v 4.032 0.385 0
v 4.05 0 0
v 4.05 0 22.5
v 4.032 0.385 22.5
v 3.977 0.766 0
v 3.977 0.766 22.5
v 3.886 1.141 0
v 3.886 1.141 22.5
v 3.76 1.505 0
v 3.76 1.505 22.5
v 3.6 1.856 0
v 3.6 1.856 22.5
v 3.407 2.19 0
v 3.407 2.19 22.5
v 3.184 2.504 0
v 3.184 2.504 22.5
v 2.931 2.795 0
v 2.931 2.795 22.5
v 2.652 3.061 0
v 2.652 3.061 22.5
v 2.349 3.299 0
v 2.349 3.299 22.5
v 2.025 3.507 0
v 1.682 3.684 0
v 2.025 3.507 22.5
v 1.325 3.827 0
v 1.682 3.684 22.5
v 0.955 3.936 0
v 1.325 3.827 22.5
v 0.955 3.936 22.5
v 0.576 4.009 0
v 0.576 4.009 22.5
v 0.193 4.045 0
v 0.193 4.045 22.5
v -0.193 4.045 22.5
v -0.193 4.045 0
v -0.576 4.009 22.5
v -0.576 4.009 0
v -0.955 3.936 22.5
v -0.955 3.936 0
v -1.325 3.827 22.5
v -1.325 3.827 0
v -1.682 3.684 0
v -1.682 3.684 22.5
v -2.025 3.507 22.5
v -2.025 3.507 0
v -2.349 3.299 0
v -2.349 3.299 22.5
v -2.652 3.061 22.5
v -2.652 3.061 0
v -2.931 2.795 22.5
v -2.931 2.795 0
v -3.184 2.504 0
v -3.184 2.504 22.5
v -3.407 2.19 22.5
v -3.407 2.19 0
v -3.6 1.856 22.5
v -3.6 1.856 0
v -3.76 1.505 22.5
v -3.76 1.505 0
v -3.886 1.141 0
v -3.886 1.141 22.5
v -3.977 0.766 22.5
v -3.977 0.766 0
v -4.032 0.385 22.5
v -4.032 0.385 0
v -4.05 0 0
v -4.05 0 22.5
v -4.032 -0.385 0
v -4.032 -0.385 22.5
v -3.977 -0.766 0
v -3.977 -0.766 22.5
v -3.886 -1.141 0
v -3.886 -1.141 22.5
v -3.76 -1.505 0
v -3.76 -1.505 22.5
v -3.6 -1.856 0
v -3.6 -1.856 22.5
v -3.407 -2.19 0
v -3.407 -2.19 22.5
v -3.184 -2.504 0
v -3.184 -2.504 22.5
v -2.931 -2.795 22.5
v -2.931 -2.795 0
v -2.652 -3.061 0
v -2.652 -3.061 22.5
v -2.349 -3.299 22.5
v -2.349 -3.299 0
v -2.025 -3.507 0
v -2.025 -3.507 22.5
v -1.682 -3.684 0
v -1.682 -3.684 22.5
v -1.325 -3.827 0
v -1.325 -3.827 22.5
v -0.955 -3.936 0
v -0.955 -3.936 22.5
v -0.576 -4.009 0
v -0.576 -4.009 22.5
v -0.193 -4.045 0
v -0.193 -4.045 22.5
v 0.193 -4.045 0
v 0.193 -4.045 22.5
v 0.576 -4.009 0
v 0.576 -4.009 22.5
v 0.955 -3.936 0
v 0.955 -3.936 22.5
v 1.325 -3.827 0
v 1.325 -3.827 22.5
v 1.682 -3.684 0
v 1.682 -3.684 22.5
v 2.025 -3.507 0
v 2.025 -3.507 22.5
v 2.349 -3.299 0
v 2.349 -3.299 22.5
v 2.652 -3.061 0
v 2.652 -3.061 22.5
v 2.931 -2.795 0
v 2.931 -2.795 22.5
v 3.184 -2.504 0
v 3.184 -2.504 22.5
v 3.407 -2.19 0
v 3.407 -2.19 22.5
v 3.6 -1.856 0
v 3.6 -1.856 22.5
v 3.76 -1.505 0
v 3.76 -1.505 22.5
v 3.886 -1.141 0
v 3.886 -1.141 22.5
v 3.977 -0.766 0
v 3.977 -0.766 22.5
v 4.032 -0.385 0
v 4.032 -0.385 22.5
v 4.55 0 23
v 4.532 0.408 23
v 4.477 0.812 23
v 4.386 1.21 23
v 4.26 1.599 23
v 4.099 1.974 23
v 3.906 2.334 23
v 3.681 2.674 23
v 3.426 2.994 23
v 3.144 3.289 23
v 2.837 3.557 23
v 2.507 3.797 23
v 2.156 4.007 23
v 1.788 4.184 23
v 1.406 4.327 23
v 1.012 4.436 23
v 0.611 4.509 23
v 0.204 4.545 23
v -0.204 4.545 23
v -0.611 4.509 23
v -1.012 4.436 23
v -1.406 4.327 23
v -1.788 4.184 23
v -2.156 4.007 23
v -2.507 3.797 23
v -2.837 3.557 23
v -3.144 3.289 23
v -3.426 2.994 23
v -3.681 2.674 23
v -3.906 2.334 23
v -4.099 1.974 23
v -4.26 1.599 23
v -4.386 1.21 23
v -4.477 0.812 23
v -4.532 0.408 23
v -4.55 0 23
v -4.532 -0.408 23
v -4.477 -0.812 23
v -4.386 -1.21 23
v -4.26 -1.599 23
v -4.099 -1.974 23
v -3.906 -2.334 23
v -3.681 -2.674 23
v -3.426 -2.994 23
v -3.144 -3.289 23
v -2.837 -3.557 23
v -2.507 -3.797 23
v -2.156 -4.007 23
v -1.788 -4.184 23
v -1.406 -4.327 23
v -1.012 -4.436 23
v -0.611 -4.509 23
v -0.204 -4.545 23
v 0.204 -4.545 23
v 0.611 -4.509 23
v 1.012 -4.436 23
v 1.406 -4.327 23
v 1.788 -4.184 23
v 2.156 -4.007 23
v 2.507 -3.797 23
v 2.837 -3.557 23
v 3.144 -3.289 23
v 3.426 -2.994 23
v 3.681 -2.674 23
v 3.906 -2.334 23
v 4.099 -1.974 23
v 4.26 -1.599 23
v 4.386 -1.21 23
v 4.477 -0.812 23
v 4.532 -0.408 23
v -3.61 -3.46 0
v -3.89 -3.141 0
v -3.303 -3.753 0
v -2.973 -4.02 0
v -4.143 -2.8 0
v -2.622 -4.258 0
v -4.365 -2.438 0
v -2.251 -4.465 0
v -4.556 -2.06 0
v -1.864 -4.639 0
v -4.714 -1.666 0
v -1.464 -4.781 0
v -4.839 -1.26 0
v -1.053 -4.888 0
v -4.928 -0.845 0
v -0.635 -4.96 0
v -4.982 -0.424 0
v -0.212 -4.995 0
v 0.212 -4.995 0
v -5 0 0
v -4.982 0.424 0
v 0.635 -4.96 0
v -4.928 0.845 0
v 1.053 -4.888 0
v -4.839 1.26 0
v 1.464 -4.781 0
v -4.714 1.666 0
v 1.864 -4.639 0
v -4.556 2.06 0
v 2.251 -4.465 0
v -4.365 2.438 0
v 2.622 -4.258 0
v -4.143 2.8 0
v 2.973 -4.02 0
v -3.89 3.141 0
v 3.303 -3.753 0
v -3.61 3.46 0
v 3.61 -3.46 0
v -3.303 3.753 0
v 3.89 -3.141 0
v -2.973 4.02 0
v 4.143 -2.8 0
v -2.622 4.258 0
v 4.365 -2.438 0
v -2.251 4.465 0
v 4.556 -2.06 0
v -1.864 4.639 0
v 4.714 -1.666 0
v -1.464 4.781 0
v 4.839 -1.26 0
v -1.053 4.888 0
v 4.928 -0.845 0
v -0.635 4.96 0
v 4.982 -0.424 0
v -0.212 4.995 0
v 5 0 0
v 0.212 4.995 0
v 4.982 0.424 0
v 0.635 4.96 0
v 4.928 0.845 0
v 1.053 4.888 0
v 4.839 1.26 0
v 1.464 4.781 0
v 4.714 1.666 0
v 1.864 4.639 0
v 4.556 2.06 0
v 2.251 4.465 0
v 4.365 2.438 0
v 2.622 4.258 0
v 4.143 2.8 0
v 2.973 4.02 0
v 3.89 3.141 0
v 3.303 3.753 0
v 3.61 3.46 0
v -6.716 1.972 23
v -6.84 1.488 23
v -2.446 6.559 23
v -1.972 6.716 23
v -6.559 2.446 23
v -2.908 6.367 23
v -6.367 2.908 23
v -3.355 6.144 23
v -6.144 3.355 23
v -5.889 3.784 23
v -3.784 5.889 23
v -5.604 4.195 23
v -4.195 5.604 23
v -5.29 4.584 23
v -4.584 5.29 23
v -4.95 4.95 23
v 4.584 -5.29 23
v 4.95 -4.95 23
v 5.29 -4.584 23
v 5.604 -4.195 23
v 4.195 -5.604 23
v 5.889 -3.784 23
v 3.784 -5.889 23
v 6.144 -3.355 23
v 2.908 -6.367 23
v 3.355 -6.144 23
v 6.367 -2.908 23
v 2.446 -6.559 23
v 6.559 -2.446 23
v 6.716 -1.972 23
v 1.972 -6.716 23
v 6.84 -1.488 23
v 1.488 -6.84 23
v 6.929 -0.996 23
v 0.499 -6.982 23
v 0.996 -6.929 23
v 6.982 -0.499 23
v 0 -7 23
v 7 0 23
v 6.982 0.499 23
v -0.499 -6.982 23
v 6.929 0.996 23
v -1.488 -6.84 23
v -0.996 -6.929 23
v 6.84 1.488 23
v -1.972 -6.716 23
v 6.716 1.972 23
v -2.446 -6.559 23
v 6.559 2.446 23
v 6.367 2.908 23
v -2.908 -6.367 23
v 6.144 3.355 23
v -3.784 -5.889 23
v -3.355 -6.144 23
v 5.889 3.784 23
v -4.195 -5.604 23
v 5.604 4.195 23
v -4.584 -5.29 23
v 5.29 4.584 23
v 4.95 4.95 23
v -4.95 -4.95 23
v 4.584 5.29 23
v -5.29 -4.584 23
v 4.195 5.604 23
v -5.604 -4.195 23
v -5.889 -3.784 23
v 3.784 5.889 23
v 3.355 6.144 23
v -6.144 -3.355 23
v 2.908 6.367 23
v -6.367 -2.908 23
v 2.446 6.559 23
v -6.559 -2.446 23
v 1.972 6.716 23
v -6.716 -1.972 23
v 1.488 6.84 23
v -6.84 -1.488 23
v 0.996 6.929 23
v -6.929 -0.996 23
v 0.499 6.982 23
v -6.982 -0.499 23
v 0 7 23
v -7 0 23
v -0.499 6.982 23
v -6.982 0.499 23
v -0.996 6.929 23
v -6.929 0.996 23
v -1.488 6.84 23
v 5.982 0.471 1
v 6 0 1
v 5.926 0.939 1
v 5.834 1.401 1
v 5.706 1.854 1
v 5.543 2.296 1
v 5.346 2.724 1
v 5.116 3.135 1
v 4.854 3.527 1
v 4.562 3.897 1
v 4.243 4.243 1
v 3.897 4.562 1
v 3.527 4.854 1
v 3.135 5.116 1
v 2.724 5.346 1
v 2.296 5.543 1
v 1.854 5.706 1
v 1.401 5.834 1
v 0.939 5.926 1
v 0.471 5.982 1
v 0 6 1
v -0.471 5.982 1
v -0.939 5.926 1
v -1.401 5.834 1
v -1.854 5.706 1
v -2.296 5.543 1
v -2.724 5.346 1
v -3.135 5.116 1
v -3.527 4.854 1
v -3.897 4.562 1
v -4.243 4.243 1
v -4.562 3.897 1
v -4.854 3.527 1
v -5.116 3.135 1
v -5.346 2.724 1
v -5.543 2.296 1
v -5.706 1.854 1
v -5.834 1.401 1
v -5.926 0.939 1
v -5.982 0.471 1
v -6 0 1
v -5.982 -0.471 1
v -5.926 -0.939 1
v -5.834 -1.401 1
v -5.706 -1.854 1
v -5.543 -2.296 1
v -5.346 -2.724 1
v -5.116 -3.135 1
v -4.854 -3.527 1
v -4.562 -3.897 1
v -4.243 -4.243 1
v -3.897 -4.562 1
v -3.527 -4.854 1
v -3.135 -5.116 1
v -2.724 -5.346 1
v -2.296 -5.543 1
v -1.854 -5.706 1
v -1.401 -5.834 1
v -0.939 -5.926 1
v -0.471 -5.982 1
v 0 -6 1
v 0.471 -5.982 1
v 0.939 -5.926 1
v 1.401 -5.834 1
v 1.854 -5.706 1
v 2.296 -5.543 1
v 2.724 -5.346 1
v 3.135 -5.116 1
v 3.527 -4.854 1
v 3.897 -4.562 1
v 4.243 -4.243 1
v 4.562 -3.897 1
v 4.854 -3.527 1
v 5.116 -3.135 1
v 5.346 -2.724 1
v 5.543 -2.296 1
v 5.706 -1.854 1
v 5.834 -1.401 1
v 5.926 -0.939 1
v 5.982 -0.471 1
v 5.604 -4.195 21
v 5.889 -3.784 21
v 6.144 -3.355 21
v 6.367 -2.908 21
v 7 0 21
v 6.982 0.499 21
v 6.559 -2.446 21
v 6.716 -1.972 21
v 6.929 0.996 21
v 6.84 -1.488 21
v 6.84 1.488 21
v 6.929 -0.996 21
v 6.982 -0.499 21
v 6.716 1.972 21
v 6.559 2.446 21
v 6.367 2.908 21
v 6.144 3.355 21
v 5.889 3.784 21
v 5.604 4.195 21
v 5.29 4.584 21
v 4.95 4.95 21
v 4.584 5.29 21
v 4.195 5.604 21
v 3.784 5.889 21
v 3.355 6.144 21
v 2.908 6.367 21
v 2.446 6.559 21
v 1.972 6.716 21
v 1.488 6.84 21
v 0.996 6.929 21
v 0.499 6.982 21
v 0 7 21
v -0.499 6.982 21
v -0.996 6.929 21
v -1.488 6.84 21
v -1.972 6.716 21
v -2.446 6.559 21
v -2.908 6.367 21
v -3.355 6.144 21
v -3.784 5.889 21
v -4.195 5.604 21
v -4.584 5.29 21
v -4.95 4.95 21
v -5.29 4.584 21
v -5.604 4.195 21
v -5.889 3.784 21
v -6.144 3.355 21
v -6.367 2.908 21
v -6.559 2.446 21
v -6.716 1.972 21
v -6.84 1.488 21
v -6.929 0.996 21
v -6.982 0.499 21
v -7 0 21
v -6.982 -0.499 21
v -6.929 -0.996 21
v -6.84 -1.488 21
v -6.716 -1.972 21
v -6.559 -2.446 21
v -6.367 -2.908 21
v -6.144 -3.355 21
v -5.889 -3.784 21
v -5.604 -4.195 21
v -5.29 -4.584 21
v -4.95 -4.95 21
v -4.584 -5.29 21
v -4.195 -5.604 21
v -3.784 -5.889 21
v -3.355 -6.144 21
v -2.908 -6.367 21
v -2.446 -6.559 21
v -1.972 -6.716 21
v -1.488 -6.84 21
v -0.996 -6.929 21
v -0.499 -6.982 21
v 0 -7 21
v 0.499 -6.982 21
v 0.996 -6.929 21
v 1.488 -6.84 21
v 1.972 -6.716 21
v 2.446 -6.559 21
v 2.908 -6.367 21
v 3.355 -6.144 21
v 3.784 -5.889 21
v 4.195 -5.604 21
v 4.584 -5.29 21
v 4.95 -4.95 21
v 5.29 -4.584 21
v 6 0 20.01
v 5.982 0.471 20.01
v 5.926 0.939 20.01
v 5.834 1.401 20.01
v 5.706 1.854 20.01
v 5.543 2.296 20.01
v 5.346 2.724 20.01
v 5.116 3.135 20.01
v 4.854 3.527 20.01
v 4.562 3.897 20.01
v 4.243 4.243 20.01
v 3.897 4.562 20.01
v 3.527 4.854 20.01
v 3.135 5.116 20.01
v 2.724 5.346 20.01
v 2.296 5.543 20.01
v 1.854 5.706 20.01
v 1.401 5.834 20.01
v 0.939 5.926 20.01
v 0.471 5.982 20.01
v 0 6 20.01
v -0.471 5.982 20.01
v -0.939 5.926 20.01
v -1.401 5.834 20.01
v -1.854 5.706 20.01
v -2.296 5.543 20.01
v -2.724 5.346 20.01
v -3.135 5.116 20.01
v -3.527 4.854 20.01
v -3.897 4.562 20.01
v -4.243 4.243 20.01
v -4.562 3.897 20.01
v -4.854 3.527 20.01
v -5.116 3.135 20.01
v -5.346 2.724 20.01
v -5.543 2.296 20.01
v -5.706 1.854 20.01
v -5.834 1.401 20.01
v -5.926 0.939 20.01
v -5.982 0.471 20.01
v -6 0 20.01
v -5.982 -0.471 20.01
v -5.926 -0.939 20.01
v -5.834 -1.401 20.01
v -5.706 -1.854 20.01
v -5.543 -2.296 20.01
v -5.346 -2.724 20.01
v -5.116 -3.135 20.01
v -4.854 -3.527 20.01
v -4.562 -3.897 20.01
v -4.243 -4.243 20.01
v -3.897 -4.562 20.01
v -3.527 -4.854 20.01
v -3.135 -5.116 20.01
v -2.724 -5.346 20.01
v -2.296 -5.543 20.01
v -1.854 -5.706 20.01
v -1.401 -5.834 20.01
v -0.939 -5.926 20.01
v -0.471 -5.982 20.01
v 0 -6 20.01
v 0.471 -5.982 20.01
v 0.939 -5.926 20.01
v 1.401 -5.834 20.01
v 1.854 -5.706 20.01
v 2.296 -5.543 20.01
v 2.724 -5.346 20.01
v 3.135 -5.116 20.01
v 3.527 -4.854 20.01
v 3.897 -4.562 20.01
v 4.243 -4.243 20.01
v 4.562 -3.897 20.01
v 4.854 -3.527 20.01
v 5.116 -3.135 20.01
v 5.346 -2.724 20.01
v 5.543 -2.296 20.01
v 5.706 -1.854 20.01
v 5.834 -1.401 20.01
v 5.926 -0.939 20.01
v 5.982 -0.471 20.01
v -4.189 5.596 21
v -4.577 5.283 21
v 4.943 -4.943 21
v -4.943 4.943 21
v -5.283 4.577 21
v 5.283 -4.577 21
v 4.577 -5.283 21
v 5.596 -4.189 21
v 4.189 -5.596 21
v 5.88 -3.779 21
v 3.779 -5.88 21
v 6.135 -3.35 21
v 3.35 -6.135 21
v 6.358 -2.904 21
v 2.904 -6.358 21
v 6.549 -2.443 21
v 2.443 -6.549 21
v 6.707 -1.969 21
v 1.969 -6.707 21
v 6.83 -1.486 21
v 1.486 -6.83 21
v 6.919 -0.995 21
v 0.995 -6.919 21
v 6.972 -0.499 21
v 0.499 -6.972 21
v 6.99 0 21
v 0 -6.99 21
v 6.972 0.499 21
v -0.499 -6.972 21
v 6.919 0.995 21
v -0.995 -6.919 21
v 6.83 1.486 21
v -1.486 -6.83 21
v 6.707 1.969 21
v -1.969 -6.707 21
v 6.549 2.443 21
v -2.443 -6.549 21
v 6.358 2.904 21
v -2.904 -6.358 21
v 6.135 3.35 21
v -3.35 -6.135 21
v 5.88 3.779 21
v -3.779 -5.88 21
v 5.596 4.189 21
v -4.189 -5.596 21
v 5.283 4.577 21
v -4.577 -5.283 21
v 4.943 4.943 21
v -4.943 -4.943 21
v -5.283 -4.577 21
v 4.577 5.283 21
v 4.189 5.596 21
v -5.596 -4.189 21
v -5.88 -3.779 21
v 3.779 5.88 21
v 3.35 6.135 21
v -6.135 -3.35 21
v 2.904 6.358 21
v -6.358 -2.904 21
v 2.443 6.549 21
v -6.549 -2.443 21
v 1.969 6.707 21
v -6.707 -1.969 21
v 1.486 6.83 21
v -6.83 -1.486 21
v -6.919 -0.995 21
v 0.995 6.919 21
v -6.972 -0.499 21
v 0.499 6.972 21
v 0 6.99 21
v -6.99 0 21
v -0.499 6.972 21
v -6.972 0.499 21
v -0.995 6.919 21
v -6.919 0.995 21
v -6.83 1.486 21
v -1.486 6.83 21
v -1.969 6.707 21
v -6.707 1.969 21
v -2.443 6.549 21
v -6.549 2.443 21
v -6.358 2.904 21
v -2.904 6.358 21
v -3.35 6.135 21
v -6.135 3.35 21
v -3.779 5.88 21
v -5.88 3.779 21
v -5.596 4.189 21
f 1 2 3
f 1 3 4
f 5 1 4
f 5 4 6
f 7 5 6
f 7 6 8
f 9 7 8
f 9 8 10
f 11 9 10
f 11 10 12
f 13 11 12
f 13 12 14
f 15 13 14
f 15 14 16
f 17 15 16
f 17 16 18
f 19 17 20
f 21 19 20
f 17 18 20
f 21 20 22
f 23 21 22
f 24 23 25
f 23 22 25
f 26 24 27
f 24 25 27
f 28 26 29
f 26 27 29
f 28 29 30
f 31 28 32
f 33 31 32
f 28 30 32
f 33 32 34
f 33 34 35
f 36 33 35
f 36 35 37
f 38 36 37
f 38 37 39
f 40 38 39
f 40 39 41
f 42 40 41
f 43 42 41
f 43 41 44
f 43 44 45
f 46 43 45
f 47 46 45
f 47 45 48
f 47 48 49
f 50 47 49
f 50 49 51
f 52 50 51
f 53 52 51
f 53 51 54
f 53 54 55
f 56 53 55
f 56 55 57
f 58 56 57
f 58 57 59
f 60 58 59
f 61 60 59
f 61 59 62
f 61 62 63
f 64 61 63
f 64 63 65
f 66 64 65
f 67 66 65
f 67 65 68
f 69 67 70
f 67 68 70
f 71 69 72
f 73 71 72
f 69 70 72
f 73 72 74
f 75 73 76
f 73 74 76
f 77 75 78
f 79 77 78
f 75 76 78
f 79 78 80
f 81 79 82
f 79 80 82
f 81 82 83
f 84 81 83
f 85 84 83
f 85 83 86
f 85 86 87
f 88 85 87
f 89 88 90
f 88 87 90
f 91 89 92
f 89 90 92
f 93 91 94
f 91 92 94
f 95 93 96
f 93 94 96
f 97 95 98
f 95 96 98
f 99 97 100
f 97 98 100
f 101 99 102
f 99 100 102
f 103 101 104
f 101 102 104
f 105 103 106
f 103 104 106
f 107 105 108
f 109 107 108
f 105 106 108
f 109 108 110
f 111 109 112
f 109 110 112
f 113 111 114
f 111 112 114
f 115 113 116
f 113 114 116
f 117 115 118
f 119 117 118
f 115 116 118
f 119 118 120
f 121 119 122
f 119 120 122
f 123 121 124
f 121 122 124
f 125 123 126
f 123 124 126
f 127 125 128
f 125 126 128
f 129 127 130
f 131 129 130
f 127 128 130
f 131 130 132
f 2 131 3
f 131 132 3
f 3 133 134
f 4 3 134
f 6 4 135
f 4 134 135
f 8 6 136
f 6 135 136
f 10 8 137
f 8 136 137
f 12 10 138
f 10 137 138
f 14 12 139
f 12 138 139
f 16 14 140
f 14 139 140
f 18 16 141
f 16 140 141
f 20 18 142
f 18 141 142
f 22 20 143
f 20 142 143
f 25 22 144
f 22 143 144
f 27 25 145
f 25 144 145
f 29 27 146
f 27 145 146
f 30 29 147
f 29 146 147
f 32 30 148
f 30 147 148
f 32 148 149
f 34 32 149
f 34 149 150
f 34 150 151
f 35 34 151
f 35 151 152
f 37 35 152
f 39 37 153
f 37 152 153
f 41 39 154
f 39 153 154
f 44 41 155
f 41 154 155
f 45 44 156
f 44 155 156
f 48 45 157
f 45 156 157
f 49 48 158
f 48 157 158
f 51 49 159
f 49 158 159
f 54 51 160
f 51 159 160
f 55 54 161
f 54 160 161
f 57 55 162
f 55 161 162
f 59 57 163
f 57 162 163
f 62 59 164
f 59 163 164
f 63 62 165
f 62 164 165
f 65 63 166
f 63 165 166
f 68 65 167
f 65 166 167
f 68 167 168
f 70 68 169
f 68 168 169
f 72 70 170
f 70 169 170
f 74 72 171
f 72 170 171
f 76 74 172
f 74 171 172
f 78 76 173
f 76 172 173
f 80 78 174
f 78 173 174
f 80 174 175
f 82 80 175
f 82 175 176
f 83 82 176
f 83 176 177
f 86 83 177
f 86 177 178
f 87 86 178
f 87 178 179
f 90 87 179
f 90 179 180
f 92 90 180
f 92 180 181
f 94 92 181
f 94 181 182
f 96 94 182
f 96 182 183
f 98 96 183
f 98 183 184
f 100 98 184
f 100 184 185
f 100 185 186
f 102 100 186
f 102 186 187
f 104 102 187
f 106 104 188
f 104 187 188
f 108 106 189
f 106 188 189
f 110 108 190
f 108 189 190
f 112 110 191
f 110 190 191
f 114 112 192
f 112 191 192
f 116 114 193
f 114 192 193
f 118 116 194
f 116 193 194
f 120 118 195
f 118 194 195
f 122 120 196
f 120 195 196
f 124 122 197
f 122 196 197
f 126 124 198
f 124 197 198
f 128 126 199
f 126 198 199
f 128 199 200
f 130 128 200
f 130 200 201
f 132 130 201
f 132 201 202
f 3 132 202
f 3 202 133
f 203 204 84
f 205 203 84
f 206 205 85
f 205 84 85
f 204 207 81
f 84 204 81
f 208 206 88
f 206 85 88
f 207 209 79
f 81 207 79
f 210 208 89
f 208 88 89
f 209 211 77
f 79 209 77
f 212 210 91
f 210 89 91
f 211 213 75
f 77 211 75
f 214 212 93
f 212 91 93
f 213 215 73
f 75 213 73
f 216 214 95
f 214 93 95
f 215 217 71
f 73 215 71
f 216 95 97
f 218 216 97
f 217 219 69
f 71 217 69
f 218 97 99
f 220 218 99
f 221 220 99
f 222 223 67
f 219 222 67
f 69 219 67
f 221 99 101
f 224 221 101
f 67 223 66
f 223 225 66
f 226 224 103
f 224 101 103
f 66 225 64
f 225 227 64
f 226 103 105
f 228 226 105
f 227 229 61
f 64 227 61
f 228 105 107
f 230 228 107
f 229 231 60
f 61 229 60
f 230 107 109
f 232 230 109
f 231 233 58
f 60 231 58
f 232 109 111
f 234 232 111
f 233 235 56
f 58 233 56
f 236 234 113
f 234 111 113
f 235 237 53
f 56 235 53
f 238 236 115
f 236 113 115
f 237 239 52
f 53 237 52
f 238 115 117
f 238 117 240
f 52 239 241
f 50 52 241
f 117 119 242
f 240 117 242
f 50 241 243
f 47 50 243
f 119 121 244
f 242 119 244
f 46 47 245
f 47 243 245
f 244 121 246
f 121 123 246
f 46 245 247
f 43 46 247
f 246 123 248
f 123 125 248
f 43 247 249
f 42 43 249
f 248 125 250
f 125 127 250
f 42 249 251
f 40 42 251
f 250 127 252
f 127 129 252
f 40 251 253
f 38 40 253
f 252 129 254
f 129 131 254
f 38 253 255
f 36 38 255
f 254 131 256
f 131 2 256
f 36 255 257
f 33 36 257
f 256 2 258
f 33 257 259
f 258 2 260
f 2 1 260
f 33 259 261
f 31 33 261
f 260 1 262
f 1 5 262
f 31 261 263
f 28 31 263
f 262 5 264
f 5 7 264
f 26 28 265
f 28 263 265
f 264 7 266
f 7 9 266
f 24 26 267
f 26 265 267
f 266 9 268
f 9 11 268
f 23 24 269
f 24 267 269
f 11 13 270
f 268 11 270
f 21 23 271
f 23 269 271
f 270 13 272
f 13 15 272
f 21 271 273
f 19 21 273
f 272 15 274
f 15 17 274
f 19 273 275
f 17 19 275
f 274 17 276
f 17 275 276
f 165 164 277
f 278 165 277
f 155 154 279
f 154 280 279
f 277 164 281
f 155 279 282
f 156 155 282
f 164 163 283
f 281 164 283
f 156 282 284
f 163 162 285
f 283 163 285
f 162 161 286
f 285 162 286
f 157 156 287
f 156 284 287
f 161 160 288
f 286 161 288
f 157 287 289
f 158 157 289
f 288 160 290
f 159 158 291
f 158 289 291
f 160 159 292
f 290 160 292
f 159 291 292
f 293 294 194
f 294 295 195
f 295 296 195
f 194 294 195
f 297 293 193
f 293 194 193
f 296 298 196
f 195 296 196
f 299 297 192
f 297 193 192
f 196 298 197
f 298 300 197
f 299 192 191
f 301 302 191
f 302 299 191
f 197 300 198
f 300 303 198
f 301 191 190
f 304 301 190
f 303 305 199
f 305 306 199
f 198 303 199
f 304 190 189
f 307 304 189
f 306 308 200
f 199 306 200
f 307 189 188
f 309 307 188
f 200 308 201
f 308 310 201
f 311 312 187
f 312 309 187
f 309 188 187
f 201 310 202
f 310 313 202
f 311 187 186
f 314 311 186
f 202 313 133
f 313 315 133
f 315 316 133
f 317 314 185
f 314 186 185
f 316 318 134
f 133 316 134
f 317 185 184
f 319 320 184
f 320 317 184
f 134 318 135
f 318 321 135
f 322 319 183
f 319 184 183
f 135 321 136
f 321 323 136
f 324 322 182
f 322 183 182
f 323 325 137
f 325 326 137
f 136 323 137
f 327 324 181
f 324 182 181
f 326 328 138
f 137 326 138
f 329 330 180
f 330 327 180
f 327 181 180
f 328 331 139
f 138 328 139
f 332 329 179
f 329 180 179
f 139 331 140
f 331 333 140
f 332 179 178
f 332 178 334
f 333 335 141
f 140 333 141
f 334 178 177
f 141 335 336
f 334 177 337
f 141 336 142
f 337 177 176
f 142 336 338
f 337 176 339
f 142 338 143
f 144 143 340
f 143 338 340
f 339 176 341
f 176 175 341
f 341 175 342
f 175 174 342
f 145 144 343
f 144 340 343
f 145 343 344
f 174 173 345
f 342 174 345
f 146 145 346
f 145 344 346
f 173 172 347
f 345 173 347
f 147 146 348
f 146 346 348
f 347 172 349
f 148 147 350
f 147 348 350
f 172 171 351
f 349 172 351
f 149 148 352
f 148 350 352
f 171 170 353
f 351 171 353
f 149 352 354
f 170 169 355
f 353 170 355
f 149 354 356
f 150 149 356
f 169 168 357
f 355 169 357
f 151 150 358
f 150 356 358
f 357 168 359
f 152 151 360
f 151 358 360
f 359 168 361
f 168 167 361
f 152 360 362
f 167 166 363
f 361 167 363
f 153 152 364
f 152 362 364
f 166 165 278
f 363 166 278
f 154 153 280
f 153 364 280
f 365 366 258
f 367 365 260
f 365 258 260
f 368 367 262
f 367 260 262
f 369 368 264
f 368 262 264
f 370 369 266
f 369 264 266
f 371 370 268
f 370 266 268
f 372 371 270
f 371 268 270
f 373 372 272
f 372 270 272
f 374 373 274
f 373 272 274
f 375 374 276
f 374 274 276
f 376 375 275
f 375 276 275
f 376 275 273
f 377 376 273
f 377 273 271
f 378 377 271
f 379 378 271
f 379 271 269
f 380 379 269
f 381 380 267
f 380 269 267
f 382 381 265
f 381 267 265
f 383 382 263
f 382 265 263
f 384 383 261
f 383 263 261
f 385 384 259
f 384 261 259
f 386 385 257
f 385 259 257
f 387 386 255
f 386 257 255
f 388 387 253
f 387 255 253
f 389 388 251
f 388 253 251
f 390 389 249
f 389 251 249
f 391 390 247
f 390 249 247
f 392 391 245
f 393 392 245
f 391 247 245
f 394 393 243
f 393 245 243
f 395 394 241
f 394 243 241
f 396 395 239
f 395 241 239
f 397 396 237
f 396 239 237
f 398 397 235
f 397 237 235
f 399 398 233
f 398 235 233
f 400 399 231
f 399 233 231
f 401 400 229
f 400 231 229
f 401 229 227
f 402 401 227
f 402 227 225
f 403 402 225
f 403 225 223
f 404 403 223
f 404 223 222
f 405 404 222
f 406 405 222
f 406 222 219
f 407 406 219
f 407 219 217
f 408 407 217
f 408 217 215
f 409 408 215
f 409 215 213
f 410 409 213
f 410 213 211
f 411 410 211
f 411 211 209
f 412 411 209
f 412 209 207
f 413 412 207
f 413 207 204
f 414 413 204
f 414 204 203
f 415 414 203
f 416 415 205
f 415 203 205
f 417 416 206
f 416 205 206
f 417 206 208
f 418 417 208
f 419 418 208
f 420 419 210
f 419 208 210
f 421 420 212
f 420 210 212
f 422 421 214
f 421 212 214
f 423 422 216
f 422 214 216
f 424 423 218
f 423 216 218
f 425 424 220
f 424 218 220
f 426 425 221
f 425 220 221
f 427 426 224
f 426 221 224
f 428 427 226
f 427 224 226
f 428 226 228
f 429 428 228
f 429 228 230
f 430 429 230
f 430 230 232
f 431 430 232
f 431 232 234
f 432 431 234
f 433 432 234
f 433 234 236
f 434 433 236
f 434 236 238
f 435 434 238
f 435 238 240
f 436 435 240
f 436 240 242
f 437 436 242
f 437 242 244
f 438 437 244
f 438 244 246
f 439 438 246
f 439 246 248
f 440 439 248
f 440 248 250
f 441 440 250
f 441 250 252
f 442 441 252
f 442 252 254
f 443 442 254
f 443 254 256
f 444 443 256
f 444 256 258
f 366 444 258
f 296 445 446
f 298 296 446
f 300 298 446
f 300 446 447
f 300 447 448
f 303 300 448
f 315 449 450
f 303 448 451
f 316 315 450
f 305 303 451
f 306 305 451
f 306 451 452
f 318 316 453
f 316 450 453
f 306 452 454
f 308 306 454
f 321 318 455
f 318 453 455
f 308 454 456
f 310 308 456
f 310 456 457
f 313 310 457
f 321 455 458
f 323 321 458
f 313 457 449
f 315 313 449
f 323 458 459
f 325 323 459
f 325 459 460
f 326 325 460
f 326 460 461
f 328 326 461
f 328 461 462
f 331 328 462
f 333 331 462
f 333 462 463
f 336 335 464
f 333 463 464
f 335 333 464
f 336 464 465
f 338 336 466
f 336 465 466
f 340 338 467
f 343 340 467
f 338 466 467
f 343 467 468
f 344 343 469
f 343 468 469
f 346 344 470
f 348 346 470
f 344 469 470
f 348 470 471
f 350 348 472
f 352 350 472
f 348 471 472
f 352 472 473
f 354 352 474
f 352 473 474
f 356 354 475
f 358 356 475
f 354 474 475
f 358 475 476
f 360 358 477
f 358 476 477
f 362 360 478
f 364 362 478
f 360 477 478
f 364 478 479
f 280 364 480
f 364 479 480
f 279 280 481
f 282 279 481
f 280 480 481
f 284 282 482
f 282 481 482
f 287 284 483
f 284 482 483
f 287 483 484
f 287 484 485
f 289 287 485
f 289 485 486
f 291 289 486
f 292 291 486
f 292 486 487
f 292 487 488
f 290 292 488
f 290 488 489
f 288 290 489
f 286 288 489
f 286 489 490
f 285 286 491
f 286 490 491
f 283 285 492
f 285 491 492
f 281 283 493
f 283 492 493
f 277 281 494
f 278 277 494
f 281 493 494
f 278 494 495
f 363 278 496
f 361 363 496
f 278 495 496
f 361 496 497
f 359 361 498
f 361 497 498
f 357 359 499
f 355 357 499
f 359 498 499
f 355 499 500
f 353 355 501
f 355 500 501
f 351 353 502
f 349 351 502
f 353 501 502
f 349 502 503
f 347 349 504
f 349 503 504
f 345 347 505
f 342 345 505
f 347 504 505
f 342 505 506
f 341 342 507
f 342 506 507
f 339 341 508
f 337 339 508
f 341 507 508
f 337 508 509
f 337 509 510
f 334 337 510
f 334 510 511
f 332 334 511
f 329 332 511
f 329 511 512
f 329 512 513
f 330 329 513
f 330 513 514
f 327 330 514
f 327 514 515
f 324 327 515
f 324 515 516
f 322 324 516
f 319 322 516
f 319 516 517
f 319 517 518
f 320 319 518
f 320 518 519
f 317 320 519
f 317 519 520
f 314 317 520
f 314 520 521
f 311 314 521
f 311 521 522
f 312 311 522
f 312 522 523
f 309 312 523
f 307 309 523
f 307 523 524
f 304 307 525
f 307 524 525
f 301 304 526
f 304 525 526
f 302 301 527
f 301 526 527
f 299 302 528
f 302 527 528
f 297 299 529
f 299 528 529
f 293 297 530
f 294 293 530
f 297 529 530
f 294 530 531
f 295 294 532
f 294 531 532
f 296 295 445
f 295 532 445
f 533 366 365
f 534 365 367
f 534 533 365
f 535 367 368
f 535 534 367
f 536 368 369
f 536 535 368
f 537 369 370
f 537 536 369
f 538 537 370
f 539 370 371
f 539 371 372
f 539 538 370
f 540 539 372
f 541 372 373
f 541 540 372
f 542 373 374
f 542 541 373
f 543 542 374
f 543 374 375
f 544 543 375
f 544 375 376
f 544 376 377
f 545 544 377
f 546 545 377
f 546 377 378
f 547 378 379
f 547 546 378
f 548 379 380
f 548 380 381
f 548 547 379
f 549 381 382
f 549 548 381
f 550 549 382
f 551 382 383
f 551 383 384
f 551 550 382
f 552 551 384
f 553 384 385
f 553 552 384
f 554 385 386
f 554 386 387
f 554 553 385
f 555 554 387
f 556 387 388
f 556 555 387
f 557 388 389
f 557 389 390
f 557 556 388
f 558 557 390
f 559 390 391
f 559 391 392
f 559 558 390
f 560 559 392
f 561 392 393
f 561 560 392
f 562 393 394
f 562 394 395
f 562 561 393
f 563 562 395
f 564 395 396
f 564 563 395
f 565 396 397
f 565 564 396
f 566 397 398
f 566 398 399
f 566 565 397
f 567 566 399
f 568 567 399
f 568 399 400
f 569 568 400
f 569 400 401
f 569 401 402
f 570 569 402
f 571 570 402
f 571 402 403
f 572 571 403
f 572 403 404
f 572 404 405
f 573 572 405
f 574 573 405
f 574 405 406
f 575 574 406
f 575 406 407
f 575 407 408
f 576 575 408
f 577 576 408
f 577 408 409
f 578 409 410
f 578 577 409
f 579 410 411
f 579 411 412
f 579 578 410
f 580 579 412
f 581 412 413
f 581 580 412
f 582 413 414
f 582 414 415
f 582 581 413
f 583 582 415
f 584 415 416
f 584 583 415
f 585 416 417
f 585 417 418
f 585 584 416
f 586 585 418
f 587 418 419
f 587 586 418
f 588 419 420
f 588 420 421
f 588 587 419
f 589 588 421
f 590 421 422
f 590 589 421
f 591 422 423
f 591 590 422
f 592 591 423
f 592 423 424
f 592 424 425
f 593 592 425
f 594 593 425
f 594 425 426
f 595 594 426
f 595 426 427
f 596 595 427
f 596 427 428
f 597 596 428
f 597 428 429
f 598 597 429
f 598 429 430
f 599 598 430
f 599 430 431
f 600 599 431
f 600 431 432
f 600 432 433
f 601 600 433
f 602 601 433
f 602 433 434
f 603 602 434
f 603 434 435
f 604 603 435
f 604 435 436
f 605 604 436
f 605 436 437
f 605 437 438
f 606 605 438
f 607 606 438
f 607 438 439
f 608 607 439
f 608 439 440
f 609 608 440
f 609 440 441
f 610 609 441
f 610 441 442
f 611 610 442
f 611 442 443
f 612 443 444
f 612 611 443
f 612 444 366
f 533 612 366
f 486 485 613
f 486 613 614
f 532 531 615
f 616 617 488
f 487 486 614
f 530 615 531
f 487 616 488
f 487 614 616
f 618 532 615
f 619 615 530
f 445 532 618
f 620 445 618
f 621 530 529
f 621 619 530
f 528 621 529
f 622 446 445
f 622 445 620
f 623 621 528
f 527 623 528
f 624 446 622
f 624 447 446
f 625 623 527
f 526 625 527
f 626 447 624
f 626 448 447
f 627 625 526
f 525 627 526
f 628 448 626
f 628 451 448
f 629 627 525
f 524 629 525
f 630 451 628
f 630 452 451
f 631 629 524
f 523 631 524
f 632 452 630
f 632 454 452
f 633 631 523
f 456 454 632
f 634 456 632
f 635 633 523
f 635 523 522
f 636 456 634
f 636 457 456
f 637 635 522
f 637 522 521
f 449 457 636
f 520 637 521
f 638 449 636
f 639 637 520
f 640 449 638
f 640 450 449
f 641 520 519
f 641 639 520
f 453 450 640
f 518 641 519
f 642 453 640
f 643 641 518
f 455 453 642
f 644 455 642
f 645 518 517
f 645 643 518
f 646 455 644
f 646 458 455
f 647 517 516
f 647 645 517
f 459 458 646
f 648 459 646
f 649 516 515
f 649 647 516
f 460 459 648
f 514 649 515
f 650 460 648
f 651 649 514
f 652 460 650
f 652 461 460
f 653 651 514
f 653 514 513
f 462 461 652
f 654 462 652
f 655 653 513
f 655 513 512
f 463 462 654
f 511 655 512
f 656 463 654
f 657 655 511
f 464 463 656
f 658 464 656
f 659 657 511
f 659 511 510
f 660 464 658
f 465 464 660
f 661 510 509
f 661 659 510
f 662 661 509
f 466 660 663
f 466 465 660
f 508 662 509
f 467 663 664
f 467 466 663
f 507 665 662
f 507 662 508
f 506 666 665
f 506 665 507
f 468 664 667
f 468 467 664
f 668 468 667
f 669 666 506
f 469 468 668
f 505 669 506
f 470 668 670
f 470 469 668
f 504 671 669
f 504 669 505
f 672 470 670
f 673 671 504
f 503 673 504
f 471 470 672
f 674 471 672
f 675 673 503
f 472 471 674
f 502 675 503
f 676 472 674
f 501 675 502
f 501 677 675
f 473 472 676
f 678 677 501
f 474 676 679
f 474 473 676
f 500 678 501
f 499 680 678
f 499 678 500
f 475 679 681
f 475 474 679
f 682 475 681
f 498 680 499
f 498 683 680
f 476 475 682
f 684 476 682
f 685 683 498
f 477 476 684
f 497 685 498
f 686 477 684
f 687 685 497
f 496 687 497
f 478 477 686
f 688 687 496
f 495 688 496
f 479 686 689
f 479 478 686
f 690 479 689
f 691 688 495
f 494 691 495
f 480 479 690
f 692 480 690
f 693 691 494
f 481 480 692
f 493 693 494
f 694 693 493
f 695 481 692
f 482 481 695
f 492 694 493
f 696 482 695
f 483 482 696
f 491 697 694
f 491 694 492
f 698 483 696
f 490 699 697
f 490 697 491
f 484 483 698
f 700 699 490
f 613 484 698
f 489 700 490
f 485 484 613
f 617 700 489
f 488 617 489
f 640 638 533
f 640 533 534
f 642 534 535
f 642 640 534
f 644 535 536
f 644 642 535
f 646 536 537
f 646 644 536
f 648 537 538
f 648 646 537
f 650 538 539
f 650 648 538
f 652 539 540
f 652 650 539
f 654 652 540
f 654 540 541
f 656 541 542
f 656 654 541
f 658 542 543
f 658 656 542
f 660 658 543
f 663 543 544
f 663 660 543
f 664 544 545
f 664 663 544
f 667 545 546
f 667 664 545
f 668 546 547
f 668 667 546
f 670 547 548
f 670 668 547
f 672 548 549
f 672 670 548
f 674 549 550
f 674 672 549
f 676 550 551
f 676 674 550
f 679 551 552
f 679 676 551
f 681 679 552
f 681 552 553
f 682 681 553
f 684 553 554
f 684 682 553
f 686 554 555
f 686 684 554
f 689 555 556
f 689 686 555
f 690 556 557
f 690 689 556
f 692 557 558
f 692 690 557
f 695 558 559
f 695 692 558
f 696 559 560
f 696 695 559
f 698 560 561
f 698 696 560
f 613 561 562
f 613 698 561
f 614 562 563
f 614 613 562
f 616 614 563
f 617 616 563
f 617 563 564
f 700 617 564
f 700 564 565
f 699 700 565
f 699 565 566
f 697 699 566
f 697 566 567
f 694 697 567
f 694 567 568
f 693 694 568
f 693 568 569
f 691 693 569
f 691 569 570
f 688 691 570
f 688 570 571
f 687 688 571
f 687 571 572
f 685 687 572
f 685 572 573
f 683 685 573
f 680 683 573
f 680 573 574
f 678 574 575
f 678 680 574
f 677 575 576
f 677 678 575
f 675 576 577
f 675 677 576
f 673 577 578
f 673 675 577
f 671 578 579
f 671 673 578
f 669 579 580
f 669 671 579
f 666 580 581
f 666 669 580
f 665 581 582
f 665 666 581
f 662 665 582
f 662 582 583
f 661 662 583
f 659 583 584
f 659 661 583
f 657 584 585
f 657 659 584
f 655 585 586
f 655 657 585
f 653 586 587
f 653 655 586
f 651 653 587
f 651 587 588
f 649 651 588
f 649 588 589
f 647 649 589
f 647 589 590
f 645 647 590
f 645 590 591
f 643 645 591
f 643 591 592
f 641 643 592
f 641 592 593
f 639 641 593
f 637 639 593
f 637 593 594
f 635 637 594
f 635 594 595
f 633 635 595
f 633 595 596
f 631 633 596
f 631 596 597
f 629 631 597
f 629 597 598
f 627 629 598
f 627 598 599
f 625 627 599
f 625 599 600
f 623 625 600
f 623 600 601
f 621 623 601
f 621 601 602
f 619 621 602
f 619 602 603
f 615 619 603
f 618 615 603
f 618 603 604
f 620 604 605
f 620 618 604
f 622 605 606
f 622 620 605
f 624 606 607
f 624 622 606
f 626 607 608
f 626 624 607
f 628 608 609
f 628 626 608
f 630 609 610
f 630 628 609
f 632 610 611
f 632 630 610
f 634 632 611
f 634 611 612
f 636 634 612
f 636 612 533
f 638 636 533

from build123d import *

# Parameters (mm, degrees)
CYLINDER001_R     = 4.05
CYLINDER001_DEPTH = 28
CYLINDER_R        = 6
CYLINDER_DEPTH    = 21
SKETCH_R          = 7
PAD_DEPTH         = 2
CHAMFER_SIZE      = 0.99
CHAMFER001_SIZE   = 1
CHAMFER002_SIZE   = 0.5


with BuildPart() as cilindro001:
    # Cylinder001 → Cylinder001 (new body)
    with BuildSketch(Plane.XY.offset(-1)):
        Circle(CYLINDER001_R)
    extrude(amount=CYLINDER001_DEPTH)


with BuildPart() as chamfer002:
    # Cylinder → Cylinder (new body)
    with BuildSketch(Plane.XY):
        Circle(CYLINDER_R)
    extrude(amount=CYLINDER_DEPTH)

    # Sketch → Pad (new body)
    with BuildSketch(Plane.XY.offset(21)):
        Circle(SKETCH_R)
    extrude(amount=PAD_DEPTH)

    # Cut: cut Cilindro001
    add(cilindro001.part, mode=Mode.SUBTRACT)

    # Chamfer
    chamfer_edges = [chamfer002.edges().sort_by_distance(p)[0] for p in [
        (-6, 0, 21),
    ]]
    chamfer(chamfer_edges, length=CHAMFER_SIZE)

    # Chamfer001
    chamfer001_edges = [chamfer002.edges().sort_by_distance(p)[0] for p in [
        (-6, 0, 0),
    ]]
    chamfer(chamfer001_edges, length=CHAMFER001_SIZE)

    # Chamfer002
    chamfer002_edges = [chamfer002.edges().sort_by_distance(p)[0] for p in [
        (-4.05, 0, 23),
    ]]
    chamfer(chamfer002_edges, length=CHAMFER002_SIZE)


solid = chamfer002.part
